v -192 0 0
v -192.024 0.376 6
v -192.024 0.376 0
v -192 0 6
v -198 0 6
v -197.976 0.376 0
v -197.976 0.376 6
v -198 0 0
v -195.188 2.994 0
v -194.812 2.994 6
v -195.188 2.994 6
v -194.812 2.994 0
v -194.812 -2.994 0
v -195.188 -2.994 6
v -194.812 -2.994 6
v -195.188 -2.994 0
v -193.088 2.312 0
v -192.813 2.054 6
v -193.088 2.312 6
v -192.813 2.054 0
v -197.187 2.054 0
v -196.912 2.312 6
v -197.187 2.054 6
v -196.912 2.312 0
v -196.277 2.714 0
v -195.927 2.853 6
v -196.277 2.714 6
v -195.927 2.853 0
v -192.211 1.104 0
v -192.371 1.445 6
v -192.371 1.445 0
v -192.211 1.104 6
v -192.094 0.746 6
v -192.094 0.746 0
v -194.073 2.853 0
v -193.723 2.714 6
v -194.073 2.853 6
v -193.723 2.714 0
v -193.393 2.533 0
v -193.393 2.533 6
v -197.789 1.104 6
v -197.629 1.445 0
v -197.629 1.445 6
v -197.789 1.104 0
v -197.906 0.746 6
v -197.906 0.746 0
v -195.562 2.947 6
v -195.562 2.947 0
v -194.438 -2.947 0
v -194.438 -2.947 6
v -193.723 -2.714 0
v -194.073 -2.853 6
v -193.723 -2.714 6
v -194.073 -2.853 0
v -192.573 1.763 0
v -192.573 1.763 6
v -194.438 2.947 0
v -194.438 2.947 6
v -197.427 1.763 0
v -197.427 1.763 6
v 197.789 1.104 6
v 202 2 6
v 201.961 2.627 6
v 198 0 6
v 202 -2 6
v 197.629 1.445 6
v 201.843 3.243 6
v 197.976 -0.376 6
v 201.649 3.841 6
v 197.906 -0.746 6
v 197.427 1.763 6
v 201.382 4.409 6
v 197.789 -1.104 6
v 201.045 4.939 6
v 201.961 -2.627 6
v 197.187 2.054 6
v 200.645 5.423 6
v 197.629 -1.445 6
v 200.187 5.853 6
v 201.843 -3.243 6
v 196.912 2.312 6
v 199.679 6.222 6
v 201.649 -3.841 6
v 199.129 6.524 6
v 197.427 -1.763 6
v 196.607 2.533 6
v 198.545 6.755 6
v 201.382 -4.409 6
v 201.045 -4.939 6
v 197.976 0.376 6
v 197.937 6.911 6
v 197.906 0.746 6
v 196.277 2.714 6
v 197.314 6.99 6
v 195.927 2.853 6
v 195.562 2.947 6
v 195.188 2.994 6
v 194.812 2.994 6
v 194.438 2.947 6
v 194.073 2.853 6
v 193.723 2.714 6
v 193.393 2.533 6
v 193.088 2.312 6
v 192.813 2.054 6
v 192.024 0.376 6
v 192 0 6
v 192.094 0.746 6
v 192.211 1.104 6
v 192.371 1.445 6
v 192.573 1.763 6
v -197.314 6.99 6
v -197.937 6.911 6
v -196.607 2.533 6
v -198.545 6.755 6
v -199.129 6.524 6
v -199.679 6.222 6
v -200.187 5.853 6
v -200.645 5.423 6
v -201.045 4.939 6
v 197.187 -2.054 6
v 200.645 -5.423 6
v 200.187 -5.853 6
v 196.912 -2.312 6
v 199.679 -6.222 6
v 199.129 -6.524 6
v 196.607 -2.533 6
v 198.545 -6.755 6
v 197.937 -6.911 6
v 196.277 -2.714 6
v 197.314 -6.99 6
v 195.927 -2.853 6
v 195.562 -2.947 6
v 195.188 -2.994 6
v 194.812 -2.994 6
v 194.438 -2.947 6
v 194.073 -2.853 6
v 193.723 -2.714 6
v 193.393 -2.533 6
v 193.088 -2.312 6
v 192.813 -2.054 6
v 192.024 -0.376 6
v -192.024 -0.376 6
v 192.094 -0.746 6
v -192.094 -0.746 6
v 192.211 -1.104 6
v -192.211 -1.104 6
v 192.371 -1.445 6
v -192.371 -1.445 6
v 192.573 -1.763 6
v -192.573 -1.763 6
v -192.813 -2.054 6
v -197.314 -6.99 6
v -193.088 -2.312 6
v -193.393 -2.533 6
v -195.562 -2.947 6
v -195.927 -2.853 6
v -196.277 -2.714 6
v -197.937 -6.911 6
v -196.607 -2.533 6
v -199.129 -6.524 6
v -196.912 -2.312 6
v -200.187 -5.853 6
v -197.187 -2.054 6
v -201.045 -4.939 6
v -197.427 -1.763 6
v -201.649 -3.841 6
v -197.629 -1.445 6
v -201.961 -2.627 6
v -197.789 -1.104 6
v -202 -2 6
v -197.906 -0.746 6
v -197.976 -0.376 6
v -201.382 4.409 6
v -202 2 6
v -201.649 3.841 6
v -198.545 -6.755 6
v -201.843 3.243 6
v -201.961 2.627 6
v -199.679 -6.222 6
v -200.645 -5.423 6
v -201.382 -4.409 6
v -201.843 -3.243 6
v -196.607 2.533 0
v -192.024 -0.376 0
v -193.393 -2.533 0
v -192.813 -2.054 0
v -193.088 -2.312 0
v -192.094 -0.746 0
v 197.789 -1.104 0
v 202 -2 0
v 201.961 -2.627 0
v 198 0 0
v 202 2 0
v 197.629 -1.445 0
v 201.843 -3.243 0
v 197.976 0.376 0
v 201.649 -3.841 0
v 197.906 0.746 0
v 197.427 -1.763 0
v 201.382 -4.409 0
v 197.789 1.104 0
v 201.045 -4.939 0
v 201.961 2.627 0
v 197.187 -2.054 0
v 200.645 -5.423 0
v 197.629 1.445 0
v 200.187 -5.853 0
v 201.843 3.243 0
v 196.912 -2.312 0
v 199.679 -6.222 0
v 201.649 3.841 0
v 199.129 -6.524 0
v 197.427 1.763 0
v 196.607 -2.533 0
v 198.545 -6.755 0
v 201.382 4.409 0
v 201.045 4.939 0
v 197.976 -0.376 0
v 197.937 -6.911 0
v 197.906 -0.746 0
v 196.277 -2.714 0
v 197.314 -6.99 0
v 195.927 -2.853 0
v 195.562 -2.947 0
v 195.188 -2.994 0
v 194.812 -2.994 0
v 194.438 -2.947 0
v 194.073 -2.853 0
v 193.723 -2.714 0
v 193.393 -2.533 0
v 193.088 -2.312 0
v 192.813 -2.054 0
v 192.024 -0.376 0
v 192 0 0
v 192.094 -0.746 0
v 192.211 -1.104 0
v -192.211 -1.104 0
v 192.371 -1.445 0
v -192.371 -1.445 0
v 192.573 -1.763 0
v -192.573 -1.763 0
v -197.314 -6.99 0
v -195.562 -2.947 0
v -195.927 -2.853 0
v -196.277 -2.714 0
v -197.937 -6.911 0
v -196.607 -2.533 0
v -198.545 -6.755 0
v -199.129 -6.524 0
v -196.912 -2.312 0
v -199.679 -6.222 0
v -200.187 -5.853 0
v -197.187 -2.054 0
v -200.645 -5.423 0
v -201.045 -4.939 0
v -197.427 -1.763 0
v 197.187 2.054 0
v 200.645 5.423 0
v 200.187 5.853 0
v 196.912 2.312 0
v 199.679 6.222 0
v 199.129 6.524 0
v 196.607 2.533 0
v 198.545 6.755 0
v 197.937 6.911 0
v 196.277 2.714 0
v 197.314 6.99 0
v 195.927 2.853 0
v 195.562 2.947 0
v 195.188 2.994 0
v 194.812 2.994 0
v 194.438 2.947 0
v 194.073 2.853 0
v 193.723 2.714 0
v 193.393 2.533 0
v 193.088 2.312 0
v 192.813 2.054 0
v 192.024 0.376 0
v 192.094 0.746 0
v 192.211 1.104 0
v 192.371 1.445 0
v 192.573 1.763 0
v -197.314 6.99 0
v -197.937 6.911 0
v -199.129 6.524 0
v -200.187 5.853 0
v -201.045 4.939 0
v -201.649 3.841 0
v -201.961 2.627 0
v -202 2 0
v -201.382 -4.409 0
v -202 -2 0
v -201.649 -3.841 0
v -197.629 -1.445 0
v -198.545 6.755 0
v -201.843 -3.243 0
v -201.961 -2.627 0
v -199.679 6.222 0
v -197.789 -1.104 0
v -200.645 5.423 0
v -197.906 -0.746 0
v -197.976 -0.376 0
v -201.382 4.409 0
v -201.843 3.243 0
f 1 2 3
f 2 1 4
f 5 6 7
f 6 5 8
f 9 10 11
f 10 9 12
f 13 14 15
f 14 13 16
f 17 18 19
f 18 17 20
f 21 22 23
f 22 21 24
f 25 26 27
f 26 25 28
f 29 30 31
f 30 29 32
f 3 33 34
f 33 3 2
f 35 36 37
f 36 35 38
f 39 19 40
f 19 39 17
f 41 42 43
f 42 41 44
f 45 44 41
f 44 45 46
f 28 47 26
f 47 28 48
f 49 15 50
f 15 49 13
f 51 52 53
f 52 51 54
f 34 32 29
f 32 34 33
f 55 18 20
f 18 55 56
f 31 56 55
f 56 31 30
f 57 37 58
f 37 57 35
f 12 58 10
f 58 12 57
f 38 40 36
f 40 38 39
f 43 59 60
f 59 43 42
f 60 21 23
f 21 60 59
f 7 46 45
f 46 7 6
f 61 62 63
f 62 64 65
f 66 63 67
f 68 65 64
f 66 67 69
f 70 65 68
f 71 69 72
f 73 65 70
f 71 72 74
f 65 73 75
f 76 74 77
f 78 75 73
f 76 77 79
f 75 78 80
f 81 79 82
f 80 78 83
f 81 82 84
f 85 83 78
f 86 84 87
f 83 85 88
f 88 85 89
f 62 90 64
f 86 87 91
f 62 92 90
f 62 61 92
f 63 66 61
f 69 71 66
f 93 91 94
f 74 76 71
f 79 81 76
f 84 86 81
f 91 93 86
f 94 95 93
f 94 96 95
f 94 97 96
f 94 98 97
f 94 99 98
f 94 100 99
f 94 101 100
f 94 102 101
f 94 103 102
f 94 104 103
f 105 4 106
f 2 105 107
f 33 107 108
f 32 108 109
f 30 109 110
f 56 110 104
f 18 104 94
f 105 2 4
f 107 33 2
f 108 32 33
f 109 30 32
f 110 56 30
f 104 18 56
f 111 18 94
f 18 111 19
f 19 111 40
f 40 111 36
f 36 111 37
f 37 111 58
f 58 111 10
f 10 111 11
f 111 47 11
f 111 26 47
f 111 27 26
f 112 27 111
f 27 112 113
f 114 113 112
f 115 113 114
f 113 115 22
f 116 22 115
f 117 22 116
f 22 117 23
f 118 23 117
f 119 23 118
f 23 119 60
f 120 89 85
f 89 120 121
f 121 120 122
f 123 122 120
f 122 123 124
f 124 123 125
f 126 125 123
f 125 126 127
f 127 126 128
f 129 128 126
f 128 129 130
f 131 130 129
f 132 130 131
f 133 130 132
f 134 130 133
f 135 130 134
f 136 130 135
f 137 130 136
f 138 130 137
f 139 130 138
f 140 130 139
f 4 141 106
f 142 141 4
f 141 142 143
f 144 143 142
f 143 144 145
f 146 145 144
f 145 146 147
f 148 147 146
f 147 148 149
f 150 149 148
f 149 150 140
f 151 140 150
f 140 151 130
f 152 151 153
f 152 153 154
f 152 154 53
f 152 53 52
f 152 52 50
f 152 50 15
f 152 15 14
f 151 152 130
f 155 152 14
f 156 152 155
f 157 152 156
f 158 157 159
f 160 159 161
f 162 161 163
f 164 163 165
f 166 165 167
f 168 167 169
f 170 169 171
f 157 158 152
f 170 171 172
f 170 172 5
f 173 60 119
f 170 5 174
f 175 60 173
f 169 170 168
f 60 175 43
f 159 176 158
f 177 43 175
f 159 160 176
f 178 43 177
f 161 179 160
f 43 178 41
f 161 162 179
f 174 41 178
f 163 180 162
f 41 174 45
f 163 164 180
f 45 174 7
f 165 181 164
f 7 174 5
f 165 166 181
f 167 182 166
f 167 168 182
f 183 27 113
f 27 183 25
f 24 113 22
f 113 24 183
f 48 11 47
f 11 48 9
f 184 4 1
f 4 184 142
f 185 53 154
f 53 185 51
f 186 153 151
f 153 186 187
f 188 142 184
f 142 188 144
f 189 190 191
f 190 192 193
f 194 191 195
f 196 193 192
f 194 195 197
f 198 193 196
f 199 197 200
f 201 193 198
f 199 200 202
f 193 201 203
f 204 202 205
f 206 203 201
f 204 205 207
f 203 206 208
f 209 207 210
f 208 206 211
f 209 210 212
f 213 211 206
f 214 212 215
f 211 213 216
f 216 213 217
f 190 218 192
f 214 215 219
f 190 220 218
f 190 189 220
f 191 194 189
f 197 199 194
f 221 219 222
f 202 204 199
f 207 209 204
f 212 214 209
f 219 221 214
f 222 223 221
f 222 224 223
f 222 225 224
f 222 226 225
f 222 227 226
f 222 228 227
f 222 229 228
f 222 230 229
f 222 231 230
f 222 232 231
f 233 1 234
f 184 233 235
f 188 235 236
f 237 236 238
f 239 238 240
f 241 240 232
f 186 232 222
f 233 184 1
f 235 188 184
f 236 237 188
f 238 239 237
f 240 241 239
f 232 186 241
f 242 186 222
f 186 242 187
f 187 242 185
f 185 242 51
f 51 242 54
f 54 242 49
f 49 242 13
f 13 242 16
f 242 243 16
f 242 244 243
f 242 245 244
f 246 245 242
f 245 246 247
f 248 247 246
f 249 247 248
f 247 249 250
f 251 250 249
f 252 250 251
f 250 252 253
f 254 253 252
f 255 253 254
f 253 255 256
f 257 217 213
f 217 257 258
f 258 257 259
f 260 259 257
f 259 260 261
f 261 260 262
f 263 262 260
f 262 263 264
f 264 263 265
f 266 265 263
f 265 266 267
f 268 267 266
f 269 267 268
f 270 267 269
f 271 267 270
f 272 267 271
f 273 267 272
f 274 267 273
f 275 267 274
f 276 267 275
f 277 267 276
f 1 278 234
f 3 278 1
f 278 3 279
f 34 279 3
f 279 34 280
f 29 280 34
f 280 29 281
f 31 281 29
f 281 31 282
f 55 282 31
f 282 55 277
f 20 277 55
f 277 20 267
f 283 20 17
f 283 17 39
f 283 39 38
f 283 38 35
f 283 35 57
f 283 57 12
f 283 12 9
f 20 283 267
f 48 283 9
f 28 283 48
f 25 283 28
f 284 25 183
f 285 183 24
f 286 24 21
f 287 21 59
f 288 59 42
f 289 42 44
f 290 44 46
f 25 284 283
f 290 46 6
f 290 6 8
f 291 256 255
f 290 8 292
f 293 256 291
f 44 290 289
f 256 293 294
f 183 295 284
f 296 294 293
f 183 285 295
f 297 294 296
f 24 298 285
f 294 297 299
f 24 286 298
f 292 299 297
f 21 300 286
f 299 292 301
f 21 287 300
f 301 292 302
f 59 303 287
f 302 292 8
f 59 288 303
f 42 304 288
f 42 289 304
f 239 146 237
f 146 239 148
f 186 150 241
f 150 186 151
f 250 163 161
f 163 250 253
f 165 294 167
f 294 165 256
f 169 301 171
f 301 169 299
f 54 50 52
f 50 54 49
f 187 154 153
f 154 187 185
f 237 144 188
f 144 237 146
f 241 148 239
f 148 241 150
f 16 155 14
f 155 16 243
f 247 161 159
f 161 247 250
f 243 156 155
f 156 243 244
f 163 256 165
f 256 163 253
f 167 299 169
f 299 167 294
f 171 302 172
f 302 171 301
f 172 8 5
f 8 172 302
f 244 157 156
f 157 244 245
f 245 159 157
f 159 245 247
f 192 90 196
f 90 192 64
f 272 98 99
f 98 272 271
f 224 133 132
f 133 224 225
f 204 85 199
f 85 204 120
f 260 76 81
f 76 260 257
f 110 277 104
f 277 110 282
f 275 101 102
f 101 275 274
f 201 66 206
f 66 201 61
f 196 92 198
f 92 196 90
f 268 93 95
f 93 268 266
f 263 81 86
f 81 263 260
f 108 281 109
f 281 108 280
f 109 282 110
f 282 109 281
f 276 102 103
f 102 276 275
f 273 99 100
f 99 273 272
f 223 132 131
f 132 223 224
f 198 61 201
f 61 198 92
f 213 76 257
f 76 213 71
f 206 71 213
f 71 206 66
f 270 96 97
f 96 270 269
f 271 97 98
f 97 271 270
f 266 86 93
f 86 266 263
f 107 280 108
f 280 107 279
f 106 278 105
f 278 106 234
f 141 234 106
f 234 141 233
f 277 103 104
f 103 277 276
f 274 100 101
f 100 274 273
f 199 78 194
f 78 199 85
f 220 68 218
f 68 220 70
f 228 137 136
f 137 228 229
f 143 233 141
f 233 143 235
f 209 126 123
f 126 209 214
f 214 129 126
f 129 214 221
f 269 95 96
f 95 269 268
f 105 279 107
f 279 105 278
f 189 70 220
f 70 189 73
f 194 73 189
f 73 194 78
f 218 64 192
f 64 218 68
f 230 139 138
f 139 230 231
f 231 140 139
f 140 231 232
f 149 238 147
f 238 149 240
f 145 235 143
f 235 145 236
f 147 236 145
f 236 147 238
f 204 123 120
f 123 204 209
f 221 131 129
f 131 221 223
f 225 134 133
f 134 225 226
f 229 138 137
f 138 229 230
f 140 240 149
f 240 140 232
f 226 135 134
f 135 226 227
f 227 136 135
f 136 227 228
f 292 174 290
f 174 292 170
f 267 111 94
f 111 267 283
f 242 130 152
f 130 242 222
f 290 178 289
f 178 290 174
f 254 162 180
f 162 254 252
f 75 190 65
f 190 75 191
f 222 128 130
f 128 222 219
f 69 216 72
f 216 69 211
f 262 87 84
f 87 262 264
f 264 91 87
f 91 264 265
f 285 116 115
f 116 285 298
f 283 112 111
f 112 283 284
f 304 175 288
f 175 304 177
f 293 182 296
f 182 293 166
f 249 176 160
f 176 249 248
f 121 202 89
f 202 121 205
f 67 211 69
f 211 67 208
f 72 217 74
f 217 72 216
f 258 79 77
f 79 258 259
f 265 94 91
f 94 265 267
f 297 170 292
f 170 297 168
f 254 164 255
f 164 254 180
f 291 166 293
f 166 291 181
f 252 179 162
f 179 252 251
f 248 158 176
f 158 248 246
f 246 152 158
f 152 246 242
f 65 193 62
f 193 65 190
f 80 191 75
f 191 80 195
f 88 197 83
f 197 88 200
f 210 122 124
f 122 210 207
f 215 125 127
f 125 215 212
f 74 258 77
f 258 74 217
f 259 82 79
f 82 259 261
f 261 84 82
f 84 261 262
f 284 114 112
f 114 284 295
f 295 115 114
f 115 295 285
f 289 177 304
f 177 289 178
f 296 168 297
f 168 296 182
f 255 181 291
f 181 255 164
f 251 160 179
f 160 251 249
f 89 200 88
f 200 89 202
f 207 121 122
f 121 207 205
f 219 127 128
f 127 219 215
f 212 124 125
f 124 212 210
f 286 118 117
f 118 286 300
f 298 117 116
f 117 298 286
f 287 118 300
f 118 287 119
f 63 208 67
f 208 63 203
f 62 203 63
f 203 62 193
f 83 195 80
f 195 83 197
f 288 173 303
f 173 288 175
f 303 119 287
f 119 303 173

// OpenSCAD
$fn = 50;


difference() {
	union() {
		hull() {
			translate(v = [-197.0000000000, 2.0000000000, 0]) {
				cylinder(h = 6, r = 5);
			}
			translate(v = [197.0000000000, 2.0000000000, 0]) {
				cylinder(h = 6, r = 5);
			}
			translate(v = [-197.0000000000, -2.0000000000, 0]) {
				cylinder(h = 6, r = 5);
			}
			translate(v = [197.0000000000, -2.0000000000, 0]) {
				cylinder(h = 6, r = 5);
			}
		}
	}
	union() {
		translate(v = [-195.0000000000, 0.0000000000, 0]) {
			cylinder(h = 6, r = 3.0000000000);
		}
		translate(v = [195.0000000000, 0.0000000000, 0]) {
			cylinder(h = 6, r = 3.0000000000);
		}
		translate(v = [-195.0000000000, 0.0000000000, 0]) {
			cylinder(h = 6, r = 1.5000000000);
		}
		translate(v = [195.0000000000, 0.0000000000, 0]) {
			cylinder(h = 6, r = 1.5000000000);
		}
		translate(v = [-195.0000000000, 0.0000000000, 0]) {
			cylinder(h = 6, r = 1.5000000000);
		}
		translate(v = [195.0000000000, 0.0000000000, 0]) {
			cylinder(h = 6, r = 1.5000000000);
		}
		translate(v = [-195.0000000000, 0.0000000000, 0]) {
			cylinder(h = 6, r = 1.5000000000);
		}
		translate(v = [195.0000000000, 0.0000000000, 0]) {
			cylinder(h = 6, r = 1.5000000000);
		}
	}
}
